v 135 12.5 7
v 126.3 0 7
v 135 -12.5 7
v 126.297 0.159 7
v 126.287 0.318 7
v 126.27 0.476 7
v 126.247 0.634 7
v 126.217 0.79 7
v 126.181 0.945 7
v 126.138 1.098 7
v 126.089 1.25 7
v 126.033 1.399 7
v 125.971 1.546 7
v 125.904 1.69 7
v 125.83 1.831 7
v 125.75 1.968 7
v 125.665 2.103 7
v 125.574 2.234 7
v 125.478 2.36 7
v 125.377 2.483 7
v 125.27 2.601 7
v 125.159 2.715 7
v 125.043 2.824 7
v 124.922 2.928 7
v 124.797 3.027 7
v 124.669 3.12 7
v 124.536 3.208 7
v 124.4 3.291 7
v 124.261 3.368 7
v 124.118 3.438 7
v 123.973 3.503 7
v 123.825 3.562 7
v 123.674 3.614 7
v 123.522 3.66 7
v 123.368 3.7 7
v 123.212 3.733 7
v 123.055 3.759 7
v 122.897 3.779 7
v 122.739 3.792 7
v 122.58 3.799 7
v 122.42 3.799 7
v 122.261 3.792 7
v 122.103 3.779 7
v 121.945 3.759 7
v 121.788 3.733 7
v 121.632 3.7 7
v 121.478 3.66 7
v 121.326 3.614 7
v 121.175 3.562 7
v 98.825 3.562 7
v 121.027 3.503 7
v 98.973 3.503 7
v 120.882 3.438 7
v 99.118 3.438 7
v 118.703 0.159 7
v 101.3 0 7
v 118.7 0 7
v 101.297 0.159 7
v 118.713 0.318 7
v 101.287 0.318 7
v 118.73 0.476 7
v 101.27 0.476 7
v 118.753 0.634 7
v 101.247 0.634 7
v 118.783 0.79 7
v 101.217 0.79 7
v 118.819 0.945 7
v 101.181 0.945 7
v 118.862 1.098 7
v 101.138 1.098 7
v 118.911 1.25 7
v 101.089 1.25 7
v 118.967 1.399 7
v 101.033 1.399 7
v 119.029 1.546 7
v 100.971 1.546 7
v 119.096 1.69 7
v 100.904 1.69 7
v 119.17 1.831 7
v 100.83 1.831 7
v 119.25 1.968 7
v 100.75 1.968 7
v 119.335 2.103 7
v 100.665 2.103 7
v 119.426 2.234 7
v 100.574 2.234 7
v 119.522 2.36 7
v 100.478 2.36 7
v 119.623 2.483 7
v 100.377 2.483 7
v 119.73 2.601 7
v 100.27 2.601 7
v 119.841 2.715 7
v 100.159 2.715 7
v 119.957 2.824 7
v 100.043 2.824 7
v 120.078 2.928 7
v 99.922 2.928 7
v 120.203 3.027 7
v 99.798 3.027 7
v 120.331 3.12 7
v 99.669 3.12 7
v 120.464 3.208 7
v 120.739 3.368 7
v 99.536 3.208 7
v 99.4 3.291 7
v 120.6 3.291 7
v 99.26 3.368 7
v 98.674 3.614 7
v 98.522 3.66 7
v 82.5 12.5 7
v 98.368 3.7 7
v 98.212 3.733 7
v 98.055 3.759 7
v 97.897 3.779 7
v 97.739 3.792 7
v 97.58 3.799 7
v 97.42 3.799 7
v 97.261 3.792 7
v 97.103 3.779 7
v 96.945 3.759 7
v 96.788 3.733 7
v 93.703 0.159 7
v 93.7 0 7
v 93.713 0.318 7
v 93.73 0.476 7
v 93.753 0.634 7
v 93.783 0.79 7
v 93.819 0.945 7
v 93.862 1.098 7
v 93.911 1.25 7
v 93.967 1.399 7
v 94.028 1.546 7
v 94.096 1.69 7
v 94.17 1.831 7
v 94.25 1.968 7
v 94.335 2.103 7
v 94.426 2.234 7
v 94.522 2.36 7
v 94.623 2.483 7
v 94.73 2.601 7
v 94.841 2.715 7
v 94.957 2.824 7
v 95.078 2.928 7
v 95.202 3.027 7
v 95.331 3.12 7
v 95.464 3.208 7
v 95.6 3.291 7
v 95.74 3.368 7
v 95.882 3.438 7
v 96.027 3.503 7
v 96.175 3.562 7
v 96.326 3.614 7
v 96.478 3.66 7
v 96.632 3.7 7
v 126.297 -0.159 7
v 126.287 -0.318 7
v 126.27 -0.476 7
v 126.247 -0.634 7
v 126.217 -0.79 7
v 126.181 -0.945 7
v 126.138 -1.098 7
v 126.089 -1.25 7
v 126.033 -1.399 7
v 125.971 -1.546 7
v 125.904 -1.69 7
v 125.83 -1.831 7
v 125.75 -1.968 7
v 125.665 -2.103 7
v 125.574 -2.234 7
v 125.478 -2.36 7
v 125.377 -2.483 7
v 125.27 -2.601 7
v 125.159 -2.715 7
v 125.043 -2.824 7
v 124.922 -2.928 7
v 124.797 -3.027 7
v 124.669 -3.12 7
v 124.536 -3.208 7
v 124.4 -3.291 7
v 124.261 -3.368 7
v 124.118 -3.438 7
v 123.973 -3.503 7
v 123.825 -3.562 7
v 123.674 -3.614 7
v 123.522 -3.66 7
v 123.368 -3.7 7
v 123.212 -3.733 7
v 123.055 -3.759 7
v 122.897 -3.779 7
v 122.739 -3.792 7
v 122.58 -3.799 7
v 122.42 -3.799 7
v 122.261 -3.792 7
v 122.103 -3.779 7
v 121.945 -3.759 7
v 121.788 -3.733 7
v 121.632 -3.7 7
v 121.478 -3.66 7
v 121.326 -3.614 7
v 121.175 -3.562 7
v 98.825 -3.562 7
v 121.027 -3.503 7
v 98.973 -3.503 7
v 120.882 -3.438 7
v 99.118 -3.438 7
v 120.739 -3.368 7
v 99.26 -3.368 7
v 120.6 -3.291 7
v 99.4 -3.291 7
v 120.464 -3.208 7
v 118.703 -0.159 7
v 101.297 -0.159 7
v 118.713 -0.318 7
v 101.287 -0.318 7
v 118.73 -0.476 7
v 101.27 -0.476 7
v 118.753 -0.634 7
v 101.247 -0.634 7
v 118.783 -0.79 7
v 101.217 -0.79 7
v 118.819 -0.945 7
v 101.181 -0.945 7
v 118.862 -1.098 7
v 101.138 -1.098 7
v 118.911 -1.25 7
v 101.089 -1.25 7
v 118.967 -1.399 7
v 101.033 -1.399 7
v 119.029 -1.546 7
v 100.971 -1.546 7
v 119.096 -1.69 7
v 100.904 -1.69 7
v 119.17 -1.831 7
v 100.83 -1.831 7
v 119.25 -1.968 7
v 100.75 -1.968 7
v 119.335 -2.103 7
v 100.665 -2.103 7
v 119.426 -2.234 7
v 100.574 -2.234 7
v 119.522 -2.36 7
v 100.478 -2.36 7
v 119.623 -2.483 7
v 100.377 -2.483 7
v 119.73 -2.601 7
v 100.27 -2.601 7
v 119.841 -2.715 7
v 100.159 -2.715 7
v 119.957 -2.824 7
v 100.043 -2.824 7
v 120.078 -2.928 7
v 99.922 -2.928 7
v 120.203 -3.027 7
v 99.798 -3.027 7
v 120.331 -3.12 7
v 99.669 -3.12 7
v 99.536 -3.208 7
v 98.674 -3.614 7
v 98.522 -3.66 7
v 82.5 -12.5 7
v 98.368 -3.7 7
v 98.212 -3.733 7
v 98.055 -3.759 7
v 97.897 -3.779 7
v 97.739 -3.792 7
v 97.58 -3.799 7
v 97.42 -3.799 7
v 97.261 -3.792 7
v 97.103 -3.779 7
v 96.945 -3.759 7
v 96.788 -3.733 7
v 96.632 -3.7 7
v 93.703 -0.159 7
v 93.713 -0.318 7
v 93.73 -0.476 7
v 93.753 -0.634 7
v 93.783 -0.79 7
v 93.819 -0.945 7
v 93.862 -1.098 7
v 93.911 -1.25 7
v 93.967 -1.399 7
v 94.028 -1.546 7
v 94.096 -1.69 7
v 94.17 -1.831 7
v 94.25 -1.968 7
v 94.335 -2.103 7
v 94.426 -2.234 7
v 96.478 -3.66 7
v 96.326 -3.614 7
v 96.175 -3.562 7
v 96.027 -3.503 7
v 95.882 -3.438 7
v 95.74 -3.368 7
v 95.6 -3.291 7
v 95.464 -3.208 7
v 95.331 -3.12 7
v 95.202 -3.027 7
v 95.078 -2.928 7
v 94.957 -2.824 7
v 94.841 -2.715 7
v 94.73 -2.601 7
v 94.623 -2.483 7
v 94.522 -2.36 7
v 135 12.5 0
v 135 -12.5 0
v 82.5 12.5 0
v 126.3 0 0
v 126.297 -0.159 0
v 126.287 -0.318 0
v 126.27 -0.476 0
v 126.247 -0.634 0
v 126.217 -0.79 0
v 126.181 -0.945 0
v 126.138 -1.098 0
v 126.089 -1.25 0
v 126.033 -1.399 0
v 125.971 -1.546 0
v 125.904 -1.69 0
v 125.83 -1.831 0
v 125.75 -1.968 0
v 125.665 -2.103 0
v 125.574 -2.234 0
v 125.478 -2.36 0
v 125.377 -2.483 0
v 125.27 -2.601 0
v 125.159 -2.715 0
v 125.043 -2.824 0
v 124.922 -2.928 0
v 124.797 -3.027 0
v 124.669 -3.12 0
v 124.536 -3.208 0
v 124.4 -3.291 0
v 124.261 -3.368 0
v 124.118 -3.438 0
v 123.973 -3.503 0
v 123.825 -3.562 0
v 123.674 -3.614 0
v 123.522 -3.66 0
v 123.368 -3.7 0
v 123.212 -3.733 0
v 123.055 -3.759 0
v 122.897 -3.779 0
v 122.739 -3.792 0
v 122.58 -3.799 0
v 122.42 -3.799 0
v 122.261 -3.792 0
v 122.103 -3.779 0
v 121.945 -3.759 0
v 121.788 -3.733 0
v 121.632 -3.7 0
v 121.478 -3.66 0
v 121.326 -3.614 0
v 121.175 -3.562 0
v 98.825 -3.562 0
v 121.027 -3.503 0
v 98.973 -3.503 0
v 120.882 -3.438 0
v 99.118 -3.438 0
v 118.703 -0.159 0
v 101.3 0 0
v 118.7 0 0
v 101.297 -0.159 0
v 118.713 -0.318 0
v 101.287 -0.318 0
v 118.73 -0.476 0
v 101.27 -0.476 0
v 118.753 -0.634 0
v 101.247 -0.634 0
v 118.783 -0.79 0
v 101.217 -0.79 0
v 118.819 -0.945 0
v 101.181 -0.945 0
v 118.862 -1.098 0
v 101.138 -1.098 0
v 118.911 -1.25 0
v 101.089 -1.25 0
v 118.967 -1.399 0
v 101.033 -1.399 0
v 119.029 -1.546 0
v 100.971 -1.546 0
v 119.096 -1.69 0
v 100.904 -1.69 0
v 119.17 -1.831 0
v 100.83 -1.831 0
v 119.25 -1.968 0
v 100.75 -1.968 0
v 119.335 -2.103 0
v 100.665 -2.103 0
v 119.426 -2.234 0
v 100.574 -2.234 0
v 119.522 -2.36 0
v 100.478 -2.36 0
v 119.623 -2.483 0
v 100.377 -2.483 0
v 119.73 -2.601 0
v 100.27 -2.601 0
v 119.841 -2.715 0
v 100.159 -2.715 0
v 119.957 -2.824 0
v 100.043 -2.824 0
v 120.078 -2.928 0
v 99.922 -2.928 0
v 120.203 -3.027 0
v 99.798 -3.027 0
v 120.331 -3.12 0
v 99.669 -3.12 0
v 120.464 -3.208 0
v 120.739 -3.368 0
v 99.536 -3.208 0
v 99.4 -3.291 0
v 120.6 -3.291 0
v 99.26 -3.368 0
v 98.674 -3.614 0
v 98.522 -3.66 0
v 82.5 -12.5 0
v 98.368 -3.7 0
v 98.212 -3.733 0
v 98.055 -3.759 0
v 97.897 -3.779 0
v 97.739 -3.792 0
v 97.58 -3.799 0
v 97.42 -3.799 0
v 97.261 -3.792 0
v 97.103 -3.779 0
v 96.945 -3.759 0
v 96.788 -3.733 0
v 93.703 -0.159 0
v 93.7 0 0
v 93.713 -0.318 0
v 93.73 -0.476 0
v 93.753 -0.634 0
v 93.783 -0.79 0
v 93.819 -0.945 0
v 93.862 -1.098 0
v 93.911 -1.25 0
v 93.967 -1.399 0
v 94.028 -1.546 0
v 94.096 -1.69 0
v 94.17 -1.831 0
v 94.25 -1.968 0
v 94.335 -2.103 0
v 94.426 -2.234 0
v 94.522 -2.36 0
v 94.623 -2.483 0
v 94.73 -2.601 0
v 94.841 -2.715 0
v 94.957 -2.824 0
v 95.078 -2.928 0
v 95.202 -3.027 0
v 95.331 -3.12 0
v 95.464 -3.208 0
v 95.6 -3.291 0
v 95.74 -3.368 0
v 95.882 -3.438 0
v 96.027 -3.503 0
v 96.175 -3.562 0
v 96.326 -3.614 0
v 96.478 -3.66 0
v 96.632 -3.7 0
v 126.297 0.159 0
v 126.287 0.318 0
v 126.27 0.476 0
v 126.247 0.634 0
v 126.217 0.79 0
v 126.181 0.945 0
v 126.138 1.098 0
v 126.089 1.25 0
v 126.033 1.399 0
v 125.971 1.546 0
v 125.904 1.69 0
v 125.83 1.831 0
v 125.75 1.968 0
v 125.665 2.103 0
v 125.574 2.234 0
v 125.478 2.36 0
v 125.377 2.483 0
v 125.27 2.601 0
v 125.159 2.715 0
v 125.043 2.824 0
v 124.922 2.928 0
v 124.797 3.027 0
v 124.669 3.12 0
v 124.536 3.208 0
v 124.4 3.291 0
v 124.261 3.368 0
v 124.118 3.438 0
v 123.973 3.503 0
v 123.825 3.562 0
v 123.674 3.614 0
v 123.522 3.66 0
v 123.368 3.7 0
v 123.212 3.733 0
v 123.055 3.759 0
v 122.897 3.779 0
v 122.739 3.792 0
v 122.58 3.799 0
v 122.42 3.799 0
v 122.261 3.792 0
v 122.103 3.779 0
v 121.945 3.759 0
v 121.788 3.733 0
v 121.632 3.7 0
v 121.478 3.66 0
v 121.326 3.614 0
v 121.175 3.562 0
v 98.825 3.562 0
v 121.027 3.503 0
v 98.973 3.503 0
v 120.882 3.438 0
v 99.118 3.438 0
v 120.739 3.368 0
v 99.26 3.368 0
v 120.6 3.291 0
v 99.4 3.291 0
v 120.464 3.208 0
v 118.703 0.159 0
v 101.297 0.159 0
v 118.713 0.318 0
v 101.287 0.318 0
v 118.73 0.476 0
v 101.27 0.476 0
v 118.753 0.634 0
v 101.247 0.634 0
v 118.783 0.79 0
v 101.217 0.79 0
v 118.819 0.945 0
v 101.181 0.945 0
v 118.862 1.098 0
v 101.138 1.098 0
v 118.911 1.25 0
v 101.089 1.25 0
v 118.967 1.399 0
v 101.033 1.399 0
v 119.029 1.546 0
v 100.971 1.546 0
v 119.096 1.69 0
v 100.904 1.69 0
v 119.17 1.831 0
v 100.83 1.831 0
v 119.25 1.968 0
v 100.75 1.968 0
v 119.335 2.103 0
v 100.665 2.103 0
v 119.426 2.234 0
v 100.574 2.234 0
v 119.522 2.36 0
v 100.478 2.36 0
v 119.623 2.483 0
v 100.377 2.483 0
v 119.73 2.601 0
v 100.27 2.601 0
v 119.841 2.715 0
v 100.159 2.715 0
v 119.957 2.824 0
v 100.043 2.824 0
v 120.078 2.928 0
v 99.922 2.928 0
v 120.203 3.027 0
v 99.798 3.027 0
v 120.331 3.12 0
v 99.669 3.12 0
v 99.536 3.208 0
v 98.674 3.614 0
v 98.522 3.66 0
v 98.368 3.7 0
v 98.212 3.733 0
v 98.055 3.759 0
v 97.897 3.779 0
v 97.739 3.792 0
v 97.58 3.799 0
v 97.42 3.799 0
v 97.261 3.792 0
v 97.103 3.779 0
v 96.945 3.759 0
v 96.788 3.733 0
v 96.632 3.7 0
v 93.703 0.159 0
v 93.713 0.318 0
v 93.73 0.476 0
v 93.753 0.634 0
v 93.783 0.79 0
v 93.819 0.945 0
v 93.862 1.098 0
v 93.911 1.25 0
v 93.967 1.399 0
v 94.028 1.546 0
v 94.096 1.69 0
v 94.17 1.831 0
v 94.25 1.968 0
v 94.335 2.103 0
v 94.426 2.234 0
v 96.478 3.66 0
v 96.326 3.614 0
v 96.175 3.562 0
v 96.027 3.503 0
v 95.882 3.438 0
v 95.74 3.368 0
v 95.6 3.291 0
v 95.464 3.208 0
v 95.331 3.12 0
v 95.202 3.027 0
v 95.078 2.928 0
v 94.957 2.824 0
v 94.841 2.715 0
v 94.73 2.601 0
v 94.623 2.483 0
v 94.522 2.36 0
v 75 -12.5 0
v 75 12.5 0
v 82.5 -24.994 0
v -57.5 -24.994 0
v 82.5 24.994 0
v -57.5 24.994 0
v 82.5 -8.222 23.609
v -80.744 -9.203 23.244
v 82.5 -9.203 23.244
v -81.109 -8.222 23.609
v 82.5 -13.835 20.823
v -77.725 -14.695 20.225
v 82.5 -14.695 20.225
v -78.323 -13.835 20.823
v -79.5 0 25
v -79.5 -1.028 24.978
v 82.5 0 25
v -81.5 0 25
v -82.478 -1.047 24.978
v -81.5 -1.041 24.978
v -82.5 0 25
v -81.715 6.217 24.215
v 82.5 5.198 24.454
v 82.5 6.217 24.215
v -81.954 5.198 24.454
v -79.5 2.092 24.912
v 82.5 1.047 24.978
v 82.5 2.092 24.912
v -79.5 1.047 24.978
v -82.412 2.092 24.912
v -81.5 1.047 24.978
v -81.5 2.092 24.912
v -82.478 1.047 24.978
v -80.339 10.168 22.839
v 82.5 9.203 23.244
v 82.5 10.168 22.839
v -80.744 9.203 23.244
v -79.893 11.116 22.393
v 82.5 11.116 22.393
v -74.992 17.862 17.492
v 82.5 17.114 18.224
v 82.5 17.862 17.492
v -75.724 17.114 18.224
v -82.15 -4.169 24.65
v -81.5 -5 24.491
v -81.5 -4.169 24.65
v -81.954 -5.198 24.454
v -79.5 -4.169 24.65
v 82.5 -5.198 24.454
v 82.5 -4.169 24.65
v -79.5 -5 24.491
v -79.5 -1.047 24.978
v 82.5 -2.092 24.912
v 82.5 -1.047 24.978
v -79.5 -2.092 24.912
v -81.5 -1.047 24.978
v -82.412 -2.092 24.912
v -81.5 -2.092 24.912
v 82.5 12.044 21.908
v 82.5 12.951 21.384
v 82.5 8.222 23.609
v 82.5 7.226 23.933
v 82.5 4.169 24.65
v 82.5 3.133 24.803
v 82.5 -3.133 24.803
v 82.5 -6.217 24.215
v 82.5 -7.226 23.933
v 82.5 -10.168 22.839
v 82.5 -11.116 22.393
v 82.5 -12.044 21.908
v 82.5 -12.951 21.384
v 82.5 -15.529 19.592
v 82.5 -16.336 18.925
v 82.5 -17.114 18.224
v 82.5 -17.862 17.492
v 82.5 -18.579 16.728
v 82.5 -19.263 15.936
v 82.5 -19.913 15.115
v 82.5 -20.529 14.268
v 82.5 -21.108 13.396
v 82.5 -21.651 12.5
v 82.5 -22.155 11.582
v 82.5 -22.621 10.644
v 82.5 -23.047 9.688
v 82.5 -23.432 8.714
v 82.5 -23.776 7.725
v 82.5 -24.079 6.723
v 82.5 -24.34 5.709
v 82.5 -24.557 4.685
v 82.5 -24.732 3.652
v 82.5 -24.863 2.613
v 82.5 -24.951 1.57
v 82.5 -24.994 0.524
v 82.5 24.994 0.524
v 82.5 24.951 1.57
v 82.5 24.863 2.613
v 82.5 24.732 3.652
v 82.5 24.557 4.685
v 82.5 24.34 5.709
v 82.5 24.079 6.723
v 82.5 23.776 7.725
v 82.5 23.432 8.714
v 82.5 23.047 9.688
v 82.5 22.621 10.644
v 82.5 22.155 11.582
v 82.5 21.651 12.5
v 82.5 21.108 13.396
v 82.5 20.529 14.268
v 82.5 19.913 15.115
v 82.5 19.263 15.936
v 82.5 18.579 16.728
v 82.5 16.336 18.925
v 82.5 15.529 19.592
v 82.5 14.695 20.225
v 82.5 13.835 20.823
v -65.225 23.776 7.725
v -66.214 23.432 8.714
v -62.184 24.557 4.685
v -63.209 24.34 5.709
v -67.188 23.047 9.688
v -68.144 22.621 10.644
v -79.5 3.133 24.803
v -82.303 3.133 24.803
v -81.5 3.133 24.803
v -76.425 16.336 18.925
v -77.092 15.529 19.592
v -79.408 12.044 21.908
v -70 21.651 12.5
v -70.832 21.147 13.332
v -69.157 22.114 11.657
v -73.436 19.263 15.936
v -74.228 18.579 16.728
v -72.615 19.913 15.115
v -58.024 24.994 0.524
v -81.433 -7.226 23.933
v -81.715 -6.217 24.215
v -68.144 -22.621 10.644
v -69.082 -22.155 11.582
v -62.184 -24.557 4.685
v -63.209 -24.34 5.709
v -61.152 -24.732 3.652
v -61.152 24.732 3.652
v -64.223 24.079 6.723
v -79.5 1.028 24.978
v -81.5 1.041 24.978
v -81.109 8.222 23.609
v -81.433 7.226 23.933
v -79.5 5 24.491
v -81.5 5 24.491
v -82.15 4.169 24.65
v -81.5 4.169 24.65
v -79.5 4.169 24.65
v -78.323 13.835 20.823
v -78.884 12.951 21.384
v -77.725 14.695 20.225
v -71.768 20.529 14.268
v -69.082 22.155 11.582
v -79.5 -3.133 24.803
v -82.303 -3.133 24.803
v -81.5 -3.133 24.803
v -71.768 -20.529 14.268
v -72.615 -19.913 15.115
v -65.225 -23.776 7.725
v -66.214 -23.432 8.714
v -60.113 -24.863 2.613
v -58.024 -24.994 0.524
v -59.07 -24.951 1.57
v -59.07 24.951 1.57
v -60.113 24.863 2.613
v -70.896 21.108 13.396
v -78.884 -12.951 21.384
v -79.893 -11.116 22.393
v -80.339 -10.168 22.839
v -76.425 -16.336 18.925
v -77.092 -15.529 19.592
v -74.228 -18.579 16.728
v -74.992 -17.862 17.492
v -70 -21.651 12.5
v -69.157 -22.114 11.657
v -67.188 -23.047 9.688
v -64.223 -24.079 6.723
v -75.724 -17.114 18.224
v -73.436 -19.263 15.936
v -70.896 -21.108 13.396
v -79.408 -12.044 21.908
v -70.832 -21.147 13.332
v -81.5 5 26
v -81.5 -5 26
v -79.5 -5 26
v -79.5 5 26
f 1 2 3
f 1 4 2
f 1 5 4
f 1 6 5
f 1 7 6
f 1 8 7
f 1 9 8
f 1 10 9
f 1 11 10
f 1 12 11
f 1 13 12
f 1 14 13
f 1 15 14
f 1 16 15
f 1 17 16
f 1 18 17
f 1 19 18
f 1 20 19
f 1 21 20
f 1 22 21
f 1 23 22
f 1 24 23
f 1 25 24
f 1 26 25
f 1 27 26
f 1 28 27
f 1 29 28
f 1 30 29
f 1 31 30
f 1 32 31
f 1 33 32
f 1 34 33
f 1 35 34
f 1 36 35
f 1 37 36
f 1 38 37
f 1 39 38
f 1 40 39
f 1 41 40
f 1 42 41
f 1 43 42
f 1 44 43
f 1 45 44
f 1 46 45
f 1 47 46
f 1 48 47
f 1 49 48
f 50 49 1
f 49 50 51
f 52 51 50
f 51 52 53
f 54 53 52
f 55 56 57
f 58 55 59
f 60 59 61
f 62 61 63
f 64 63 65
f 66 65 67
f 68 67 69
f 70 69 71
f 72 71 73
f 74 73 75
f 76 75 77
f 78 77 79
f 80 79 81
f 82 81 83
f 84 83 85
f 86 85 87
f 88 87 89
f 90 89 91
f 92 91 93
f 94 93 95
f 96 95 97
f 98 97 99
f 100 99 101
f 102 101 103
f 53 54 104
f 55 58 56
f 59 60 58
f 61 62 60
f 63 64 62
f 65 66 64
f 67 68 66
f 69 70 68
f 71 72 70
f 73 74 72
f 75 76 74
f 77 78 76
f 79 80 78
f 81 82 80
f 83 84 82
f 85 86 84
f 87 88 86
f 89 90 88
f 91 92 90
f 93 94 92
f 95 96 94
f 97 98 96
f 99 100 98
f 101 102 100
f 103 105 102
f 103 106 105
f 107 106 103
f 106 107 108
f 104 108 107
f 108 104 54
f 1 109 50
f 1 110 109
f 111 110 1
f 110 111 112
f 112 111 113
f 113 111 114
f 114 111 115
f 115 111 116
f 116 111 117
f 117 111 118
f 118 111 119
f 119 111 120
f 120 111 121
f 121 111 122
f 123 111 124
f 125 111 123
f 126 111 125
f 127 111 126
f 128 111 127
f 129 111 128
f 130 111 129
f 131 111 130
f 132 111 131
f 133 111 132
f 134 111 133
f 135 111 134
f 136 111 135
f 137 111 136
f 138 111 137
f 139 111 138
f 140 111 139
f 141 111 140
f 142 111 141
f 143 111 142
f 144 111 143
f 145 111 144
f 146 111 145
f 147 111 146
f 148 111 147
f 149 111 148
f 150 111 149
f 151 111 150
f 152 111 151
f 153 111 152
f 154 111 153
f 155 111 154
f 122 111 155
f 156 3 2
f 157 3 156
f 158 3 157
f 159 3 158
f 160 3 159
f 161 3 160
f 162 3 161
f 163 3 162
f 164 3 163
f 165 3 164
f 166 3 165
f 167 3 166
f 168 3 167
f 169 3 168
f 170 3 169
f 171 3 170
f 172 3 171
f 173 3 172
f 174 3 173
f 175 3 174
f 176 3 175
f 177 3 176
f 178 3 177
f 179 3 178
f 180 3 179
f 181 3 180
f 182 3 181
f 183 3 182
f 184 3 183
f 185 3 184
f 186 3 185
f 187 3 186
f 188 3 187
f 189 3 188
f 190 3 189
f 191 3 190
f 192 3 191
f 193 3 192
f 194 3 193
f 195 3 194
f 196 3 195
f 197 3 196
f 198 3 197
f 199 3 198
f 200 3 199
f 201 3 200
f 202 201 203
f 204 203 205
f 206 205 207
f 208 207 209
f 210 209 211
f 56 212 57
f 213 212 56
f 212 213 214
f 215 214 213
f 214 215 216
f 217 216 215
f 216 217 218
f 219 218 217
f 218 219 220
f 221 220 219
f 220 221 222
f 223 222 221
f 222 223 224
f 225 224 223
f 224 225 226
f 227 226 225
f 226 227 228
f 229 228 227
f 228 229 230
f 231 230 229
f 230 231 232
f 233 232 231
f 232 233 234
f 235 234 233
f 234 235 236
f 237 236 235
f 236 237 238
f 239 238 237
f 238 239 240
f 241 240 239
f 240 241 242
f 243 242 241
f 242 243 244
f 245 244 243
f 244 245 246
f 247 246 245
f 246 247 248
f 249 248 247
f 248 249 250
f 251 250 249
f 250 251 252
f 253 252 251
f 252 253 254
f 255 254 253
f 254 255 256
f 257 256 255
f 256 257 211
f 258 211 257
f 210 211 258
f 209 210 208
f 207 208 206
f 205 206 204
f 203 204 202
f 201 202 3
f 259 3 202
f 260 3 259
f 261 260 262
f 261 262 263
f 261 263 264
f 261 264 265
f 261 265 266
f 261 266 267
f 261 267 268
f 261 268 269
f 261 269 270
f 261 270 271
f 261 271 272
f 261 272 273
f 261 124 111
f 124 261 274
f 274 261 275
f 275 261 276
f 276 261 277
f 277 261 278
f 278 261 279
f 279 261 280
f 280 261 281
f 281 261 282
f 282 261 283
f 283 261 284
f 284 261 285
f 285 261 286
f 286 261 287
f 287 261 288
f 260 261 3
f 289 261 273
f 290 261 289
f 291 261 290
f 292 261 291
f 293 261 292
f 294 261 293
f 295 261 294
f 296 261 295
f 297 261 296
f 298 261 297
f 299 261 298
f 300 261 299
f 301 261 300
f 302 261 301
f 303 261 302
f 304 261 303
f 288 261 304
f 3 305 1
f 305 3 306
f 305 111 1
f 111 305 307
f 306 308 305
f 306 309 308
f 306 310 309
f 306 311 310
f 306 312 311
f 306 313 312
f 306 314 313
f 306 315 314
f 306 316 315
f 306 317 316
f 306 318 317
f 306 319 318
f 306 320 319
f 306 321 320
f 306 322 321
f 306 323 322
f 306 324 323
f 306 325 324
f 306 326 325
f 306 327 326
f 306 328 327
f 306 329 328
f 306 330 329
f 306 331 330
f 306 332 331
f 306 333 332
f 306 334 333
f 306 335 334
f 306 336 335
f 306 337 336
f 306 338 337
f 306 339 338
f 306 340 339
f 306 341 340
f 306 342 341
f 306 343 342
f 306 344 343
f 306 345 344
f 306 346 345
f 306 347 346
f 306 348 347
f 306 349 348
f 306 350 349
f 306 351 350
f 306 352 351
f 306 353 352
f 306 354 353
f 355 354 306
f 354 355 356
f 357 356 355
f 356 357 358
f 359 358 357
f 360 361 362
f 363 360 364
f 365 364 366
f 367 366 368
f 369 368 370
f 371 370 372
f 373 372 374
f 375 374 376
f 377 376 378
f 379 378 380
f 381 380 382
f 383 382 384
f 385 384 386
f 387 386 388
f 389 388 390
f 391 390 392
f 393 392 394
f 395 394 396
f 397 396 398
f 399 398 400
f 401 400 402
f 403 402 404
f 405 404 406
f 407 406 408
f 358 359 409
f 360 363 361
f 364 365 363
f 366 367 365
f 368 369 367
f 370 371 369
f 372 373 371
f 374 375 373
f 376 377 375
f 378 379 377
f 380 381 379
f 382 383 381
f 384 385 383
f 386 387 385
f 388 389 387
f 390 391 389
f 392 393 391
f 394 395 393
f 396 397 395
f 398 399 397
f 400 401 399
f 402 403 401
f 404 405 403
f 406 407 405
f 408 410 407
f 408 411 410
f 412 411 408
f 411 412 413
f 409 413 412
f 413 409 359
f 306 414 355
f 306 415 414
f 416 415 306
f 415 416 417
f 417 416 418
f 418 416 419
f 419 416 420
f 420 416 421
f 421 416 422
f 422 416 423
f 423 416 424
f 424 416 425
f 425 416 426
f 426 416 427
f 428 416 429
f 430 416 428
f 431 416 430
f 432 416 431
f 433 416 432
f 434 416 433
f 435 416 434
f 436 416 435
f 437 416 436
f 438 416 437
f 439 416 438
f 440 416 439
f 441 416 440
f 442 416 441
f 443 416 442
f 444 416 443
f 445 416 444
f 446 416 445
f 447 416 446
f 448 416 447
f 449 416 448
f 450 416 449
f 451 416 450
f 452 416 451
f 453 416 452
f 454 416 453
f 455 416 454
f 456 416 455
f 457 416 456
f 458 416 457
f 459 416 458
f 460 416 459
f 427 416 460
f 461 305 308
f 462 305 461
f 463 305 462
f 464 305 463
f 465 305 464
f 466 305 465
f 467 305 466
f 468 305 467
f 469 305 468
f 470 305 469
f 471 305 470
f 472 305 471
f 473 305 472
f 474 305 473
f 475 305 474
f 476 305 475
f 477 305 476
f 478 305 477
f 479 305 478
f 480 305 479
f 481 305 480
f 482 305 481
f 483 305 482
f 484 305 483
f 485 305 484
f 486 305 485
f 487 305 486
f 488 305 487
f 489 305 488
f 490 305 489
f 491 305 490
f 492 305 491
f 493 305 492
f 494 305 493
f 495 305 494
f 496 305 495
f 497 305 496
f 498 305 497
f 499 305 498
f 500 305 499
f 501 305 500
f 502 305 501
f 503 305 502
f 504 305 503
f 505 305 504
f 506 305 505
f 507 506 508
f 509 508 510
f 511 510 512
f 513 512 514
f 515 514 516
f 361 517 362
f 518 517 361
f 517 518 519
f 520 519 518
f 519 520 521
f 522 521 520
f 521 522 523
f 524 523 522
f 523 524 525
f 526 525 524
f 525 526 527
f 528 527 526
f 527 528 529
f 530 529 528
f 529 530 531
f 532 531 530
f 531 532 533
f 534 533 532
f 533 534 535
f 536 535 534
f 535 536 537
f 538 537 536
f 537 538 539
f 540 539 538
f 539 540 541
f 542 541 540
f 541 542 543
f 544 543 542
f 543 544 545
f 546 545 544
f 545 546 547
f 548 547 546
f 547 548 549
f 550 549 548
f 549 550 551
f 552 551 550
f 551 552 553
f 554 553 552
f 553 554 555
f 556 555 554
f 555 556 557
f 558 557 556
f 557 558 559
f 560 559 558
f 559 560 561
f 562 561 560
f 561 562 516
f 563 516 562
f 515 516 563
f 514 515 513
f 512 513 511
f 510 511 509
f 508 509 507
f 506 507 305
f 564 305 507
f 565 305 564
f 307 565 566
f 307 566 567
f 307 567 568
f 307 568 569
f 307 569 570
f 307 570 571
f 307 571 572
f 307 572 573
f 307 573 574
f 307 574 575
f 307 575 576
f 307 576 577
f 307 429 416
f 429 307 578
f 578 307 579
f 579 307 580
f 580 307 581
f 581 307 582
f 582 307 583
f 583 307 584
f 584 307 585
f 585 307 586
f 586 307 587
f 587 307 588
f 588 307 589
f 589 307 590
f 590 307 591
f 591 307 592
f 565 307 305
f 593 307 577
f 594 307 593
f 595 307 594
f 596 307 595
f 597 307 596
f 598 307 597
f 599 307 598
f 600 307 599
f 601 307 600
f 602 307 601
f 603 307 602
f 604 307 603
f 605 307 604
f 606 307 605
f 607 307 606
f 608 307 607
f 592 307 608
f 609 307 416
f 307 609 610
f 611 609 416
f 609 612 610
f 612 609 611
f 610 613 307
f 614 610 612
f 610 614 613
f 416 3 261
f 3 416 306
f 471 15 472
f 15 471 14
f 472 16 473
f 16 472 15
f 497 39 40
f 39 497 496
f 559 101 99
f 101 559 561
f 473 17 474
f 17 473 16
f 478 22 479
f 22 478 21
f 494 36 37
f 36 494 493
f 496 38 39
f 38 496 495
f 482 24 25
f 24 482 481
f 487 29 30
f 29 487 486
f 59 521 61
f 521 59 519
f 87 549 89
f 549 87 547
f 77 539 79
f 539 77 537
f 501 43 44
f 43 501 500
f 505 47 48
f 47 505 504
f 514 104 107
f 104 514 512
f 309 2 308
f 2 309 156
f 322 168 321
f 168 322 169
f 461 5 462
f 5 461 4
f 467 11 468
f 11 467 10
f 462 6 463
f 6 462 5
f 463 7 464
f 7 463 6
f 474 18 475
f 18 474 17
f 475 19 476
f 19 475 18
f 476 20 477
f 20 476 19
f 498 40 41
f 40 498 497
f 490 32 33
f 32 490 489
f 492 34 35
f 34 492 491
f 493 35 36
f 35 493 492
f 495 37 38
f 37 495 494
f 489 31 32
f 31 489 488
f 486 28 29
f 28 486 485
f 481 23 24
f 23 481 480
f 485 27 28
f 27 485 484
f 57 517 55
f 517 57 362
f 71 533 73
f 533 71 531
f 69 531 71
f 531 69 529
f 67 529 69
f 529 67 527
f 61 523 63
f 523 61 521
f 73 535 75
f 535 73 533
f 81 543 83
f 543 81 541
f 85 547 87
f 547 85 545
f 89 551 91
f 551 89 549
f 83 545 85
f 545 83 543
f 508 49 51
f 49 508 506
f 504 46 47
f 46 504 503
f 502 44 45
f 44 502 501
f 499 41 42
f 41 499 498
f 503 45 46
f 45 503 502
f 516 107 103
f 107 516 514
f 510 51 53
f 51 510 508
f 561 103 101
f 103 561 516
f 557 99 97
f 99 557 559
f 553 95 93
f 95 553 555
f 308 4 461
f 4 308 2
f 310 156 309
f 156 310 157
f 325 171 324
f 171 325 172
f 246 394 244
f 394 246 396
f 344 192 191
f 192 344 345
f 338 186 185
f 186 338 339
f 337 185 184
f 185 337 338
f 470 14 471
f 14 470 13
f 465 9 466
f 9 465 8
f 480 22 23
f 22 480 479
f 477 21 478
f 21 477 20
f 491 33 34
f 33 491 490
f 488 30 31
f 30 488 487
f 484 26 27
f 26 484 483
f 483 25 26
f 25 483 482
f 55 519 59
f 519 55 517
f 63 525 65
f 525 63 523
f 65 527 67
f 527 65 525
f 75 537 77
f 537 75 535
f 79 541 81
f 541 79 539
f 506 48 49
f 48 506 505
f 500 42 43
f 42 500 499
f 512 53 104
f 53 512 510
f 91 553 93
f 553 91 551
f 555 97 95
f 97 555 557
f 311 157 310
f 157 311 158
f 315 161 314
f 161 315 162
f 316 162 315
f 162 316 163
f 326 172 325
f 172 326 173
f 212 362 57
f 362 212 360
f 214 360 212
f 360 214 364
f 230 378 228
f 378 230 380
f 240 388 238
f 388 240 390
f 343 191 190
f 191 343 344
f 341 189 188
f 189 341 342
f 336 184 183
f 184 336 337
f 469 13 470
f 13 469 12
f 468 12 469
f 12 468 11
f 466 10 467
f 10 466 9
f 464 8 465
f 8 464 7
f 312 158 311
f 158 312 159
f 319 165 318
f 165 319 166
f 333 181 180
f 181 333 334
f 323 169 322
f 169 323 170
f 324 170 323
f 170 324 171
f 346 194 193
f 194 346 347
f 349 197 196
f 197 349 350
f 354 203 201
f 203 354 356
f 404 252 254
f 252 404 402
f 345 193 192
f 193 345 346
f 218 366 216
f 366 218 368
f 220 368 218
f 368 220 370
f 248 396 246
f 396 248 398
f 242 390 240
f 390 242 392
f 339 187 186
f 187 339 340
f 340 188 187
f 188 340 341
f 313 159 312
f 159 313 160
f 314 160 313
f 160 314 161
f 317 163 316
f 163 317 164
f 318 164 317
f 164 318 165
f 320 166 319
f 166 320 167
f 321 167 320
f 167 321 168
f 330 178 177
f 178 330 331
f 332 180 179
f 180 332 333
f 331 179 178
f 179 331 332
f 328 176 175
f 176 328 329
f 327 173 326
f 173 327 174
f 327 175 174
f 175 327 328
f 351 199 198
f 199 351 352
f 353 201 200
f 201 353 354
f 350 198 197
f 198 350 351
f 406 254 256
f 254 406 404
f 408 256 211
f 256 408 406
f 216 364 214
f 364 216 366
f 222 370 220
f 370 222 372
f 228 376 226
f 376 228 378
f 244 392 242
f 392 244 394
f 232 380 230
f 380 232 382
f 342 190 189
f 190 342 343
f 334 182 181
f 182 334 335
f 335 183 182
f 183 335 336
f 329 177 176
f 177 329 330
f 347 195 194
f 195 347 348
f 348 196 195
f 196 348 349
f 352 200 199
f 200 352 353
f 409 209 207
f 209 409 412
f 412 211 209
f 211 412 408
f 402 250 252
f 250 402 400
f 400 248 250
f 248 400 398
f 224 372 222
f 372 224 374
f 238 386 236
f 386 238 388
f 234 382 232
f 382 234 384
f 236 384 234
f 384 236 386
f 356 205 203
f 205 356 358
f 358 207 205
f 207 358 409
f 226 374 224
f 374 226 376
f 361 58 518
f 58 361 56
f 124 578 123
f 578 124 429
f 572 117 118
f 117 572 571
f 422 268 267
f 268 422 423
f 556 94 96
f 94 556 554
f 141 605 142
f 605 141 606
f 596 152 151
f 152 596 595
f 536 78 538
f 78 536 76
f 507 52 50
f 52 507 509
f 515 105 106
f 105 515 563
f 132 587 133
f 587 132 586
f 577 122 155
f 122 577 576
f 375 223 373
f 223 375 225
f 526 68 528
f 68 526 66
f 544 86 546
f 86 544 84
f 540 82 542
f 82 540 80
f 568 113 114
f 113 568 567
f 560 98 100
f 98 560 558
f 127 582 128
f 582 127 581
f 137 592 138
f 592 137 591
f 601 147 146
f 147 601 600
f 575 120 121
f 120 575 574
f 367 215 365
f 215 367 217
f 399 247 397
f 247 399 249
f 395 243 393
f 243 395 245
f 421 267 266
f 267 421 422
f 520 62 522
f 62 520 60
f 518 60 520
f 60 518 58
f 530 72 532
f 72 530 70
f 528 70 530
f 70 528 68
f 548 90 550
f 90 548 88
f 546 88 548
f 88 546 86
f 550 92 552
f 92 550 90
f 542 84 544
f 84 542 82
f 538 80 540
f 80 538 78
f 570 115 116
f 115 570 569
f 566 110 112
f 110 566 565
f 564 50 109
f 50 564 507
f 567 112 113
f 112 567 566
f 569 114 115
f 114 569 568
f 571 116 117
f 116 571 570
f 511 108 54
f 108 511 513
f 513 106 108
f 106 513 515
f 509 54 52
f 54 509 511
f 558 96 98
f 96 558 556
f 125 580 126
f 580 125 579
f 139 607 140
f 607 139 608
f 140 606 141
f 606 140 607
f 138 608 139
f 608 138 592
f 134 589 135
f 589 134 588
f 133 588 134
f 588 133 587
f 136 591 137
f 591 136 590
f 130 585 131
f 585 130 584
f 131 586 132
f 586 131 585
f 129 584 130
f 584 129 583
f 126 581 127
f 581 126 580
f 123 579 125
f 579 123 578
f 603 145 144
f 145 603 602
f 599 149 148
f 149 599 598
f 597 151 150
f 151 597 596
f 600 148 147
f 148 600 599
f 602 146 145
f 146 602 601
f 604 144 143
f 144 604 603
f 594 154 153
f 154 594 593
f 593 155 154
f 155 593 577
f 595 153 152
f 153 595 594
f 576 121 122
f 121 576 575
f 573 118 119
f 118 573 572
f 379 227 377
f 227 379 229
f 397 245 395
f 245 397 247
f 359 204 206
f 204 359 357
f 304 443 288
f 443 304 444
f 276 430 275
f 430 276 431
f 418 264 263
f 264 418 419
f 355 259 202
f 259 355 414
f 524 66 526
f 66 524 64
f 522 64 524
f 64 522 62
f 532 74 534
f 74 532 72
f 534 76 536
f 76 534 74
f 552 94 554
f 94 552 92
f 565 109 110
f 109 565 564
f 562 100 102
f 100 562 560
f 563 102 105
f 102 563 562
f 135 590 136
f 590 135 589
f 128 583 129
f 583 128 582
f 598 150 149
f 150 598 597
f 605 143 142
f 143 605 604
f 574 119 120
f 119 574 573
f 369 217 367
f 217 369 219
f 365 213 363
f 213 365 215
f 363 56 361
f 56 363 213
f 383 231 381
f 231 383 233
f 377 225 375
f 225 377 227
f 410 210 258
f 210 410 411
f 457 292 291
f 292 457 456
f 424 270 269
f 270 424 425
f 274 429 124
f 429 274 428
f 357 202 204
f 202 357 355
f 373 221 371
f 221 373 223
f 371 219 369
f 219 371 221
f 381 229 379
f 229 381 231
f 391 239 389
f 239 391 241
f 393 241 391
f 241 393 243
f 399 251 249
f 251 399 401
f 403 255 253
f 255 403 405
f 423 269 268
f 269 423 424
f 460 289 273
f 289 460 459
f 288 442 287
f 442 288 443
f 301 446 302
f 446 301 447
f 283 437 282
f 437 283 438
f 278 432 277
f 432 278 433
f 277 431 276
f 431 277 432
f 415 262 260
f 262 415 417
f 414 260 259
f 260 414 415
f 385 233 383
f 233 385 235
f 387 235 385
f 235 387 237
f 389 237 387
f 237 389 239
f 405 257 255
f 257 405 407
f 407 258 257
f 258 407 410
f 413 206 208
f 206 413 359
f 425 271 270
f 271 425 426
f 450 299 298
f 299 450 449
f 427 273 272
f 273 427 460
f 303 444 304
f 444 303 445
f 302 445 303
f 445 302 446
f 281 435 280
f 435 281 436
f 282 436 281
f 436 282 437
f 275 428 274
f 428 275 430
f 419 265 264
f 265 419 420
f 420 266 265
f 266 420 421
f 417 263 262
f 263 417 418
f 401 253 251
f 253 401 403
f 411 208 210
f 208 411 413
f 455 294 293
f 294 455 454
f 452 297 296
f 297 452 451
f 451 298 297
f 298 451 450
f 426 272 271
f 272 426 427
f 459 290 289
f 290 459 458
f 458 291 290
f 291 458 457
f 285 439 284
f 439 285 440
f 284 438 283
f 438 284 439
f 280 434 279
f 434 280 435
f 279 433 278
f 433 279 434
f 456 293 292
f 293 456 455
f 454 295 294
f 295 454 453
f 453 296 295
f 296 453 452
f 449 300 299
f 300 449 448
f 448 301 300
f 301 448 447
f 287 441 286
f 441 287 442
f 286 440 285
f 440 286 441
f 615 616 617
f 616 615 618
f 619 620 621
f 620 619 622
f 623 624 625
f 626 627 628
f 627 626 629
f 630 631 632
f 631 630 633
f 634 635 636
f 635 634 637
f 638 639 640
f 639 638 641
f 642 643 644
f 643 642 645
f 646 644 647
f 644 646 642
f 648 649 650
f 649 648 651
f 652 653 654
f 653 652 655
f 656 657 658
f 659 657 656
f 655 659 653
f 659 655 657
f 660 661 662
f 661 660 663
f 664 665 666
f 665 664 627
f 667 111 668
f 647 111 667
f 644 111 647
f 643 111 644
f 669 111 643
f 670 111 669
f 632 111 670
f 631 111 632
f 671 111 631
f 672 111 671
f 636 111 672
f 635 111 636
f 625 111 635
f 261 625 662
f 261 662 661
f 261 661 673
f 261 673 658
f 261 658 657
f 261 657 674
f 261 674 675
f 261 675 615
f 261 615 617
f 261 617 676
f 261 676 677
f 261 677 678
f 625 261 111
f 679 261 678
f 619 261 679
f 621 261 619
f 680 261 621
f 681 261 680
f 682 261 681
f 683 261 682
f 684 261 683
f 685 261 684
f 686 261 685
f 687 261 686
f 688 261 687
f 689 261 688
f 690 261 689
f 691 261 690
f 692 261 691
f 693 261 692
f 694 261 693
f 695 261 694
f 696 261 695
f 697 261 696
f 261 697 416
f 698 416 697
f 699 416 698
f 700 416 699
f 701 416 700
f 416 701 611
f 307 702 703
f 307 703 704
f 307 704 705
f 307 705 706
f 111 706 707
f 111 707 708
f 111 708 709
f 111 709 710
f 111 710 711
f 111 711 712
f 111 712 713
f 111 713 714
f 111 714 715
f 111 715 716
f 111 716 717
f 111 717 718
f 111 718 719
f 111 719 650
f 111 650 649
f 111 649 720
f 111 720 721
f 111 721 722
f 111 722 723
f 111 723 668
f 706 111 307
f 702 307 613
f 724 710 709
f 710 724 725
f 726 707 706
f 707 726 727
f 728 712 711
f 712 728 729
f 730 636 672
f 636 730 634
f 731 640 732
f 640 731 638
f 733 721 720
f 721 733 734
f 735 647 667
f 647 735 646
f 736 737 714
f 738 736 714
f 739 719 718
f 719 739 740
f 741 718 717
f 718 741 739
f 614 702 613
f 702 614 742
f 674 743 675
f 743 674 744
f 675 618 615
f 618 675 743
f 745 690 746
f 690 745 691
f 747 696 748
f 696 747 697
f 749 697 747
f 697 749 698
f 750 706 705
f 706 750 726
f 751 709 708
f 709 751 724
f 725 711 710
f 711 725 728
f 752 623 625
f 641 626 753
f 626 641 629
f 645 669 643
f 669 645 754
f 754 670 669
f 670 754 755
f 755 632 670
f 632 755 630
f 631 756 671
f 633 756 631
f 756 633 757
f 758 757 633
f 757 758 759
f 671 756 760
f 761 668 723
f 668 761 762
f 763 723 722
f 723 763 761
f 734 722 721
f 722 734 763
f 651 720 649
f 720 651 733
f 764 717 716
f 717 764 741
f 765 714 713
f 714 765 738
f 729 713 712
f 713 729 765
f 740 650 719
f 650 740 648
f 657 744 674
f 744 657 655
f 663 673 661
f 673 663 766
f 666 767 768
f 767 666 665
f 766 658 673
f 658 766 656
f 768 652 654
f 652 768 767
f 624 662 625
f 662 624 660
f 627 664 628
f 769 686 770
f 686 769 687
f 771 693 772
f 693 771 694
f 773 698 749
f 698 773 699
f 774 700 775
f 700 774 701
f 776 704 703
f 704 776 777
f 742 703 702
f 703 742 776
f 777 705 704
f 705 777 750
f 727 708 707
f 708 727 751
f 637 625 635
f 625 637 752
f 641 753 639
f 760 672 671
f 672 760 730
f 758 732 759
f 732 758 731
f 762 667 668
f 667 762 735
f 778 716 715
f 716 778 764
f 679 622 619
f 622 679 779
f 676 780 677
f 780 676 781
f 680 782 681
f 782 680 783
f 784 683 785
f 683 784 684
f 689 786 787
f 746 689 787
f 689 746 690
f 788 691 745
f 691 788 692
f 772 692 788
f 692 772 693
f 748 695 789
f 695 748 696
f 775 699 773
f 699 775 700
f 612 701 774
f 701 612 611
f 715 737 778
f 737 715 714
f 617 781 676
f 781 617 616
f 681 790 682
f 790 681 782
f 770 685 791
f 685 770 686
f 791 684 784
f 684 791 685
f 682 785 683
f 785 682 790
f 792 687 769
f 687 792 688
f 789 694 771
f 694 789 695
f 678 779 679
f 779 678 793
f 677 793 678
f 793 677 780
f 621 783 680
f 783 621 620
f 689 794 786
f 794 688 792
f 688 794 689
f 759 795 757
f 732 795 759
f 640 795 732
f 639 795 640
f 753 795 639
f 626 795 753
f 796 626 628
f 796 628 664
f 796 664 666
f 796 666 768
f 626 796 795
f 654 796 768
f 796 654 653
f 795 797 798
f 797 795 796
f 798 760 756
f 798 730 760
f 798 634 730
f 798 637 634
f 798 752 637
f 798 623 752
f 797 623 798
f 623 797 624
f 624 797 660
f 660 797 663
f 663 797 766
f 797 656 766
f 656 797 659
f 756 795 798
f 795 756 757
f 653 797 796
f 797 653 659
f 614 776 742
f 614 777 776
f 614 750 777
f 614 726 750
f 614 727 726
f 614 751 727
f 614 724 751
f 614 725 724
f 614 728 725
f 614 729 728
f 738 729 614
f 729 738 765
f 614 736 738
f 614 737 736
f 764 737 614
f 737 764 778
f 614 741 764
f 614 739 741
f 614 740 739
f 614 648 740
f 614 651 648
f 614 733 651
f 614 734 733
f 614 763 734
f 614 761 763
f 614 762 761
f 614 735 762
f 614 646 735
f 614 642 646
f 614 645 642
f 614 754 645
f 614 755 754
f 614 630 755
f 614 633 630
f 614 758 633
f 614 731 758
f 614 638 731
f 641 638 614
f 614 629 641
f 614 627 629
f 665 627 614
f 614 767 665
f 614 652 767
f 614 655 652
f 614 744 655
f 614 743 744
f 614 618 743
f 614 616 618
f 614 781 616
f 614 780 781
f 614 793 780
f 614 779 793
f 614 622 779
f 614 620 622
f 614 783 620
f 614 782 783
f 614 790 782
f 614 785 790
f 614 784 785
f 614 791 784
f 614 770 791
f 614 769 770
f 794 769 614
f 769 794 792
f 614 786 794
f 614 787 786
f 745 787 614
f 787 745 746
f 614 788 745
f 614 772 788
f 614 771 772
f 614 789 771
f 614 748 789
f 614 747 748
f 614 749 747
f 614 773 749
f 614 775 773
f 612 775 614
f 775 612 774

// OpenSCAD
// Ankur Gupta
// Glabs
// github.com/agupta231
// ankur.gupta-web.com

$fn  = 150;

radius = 25;
width =  165;
screwThickness = 7;
screwPlateLength = 55;
screwPlateWidth = 25;
screwHoleRadius = 3.8;
screwHoleBuffer = 15;
stopperWidth = 10;
stopperLength = 1;
stopperThickness = 2;

union() {
    difference() {
        union() {
            rotate([0, 90, 0]) {
               cylinder(width, radius, radius, center = true);
            }
            translate([-width / 2 + stopperThickness / 2 + 1, 0, (stopperLength + radius) / 2]) {
                cube([stopperThickness, stopperWidth, stopperLength + radius], center = true);
            }
        }
        translate([0, 0, -radius / 2]) {
            cube([width + 5, radius * 2, radius], center = true);
        }
        translate([-width / 2,0,radius - (radius * sqrt(2) / 2)]) {
            rotate([0, -45, 0]) {
                cube([radius,radius * 2,radius * 2], center = true);
            }
        }
    }

    difference() {
        translate([width / 2 + screwPlateLength / 2 - 5, 0, screwThickness / 2]) {
            cube([screwPlateLength + 5, screwPlateWidth, screwThickness], center = true);
        }
        translate([width / 2 + screwPlateLength - screwHoleBuffer,0,screwThickness / 2]) {
            cylinder(screwThickness + 5, screwHoleRadius, screwHoleRadius, center = true);
        }
        translate([width / 2 + screwHoleBuffer,0,screwThickness / 2]) {
            cylinder(screwThickness + 5, screwHoleRadius, screwHoleRadius, center = true);
        }
    }
}
